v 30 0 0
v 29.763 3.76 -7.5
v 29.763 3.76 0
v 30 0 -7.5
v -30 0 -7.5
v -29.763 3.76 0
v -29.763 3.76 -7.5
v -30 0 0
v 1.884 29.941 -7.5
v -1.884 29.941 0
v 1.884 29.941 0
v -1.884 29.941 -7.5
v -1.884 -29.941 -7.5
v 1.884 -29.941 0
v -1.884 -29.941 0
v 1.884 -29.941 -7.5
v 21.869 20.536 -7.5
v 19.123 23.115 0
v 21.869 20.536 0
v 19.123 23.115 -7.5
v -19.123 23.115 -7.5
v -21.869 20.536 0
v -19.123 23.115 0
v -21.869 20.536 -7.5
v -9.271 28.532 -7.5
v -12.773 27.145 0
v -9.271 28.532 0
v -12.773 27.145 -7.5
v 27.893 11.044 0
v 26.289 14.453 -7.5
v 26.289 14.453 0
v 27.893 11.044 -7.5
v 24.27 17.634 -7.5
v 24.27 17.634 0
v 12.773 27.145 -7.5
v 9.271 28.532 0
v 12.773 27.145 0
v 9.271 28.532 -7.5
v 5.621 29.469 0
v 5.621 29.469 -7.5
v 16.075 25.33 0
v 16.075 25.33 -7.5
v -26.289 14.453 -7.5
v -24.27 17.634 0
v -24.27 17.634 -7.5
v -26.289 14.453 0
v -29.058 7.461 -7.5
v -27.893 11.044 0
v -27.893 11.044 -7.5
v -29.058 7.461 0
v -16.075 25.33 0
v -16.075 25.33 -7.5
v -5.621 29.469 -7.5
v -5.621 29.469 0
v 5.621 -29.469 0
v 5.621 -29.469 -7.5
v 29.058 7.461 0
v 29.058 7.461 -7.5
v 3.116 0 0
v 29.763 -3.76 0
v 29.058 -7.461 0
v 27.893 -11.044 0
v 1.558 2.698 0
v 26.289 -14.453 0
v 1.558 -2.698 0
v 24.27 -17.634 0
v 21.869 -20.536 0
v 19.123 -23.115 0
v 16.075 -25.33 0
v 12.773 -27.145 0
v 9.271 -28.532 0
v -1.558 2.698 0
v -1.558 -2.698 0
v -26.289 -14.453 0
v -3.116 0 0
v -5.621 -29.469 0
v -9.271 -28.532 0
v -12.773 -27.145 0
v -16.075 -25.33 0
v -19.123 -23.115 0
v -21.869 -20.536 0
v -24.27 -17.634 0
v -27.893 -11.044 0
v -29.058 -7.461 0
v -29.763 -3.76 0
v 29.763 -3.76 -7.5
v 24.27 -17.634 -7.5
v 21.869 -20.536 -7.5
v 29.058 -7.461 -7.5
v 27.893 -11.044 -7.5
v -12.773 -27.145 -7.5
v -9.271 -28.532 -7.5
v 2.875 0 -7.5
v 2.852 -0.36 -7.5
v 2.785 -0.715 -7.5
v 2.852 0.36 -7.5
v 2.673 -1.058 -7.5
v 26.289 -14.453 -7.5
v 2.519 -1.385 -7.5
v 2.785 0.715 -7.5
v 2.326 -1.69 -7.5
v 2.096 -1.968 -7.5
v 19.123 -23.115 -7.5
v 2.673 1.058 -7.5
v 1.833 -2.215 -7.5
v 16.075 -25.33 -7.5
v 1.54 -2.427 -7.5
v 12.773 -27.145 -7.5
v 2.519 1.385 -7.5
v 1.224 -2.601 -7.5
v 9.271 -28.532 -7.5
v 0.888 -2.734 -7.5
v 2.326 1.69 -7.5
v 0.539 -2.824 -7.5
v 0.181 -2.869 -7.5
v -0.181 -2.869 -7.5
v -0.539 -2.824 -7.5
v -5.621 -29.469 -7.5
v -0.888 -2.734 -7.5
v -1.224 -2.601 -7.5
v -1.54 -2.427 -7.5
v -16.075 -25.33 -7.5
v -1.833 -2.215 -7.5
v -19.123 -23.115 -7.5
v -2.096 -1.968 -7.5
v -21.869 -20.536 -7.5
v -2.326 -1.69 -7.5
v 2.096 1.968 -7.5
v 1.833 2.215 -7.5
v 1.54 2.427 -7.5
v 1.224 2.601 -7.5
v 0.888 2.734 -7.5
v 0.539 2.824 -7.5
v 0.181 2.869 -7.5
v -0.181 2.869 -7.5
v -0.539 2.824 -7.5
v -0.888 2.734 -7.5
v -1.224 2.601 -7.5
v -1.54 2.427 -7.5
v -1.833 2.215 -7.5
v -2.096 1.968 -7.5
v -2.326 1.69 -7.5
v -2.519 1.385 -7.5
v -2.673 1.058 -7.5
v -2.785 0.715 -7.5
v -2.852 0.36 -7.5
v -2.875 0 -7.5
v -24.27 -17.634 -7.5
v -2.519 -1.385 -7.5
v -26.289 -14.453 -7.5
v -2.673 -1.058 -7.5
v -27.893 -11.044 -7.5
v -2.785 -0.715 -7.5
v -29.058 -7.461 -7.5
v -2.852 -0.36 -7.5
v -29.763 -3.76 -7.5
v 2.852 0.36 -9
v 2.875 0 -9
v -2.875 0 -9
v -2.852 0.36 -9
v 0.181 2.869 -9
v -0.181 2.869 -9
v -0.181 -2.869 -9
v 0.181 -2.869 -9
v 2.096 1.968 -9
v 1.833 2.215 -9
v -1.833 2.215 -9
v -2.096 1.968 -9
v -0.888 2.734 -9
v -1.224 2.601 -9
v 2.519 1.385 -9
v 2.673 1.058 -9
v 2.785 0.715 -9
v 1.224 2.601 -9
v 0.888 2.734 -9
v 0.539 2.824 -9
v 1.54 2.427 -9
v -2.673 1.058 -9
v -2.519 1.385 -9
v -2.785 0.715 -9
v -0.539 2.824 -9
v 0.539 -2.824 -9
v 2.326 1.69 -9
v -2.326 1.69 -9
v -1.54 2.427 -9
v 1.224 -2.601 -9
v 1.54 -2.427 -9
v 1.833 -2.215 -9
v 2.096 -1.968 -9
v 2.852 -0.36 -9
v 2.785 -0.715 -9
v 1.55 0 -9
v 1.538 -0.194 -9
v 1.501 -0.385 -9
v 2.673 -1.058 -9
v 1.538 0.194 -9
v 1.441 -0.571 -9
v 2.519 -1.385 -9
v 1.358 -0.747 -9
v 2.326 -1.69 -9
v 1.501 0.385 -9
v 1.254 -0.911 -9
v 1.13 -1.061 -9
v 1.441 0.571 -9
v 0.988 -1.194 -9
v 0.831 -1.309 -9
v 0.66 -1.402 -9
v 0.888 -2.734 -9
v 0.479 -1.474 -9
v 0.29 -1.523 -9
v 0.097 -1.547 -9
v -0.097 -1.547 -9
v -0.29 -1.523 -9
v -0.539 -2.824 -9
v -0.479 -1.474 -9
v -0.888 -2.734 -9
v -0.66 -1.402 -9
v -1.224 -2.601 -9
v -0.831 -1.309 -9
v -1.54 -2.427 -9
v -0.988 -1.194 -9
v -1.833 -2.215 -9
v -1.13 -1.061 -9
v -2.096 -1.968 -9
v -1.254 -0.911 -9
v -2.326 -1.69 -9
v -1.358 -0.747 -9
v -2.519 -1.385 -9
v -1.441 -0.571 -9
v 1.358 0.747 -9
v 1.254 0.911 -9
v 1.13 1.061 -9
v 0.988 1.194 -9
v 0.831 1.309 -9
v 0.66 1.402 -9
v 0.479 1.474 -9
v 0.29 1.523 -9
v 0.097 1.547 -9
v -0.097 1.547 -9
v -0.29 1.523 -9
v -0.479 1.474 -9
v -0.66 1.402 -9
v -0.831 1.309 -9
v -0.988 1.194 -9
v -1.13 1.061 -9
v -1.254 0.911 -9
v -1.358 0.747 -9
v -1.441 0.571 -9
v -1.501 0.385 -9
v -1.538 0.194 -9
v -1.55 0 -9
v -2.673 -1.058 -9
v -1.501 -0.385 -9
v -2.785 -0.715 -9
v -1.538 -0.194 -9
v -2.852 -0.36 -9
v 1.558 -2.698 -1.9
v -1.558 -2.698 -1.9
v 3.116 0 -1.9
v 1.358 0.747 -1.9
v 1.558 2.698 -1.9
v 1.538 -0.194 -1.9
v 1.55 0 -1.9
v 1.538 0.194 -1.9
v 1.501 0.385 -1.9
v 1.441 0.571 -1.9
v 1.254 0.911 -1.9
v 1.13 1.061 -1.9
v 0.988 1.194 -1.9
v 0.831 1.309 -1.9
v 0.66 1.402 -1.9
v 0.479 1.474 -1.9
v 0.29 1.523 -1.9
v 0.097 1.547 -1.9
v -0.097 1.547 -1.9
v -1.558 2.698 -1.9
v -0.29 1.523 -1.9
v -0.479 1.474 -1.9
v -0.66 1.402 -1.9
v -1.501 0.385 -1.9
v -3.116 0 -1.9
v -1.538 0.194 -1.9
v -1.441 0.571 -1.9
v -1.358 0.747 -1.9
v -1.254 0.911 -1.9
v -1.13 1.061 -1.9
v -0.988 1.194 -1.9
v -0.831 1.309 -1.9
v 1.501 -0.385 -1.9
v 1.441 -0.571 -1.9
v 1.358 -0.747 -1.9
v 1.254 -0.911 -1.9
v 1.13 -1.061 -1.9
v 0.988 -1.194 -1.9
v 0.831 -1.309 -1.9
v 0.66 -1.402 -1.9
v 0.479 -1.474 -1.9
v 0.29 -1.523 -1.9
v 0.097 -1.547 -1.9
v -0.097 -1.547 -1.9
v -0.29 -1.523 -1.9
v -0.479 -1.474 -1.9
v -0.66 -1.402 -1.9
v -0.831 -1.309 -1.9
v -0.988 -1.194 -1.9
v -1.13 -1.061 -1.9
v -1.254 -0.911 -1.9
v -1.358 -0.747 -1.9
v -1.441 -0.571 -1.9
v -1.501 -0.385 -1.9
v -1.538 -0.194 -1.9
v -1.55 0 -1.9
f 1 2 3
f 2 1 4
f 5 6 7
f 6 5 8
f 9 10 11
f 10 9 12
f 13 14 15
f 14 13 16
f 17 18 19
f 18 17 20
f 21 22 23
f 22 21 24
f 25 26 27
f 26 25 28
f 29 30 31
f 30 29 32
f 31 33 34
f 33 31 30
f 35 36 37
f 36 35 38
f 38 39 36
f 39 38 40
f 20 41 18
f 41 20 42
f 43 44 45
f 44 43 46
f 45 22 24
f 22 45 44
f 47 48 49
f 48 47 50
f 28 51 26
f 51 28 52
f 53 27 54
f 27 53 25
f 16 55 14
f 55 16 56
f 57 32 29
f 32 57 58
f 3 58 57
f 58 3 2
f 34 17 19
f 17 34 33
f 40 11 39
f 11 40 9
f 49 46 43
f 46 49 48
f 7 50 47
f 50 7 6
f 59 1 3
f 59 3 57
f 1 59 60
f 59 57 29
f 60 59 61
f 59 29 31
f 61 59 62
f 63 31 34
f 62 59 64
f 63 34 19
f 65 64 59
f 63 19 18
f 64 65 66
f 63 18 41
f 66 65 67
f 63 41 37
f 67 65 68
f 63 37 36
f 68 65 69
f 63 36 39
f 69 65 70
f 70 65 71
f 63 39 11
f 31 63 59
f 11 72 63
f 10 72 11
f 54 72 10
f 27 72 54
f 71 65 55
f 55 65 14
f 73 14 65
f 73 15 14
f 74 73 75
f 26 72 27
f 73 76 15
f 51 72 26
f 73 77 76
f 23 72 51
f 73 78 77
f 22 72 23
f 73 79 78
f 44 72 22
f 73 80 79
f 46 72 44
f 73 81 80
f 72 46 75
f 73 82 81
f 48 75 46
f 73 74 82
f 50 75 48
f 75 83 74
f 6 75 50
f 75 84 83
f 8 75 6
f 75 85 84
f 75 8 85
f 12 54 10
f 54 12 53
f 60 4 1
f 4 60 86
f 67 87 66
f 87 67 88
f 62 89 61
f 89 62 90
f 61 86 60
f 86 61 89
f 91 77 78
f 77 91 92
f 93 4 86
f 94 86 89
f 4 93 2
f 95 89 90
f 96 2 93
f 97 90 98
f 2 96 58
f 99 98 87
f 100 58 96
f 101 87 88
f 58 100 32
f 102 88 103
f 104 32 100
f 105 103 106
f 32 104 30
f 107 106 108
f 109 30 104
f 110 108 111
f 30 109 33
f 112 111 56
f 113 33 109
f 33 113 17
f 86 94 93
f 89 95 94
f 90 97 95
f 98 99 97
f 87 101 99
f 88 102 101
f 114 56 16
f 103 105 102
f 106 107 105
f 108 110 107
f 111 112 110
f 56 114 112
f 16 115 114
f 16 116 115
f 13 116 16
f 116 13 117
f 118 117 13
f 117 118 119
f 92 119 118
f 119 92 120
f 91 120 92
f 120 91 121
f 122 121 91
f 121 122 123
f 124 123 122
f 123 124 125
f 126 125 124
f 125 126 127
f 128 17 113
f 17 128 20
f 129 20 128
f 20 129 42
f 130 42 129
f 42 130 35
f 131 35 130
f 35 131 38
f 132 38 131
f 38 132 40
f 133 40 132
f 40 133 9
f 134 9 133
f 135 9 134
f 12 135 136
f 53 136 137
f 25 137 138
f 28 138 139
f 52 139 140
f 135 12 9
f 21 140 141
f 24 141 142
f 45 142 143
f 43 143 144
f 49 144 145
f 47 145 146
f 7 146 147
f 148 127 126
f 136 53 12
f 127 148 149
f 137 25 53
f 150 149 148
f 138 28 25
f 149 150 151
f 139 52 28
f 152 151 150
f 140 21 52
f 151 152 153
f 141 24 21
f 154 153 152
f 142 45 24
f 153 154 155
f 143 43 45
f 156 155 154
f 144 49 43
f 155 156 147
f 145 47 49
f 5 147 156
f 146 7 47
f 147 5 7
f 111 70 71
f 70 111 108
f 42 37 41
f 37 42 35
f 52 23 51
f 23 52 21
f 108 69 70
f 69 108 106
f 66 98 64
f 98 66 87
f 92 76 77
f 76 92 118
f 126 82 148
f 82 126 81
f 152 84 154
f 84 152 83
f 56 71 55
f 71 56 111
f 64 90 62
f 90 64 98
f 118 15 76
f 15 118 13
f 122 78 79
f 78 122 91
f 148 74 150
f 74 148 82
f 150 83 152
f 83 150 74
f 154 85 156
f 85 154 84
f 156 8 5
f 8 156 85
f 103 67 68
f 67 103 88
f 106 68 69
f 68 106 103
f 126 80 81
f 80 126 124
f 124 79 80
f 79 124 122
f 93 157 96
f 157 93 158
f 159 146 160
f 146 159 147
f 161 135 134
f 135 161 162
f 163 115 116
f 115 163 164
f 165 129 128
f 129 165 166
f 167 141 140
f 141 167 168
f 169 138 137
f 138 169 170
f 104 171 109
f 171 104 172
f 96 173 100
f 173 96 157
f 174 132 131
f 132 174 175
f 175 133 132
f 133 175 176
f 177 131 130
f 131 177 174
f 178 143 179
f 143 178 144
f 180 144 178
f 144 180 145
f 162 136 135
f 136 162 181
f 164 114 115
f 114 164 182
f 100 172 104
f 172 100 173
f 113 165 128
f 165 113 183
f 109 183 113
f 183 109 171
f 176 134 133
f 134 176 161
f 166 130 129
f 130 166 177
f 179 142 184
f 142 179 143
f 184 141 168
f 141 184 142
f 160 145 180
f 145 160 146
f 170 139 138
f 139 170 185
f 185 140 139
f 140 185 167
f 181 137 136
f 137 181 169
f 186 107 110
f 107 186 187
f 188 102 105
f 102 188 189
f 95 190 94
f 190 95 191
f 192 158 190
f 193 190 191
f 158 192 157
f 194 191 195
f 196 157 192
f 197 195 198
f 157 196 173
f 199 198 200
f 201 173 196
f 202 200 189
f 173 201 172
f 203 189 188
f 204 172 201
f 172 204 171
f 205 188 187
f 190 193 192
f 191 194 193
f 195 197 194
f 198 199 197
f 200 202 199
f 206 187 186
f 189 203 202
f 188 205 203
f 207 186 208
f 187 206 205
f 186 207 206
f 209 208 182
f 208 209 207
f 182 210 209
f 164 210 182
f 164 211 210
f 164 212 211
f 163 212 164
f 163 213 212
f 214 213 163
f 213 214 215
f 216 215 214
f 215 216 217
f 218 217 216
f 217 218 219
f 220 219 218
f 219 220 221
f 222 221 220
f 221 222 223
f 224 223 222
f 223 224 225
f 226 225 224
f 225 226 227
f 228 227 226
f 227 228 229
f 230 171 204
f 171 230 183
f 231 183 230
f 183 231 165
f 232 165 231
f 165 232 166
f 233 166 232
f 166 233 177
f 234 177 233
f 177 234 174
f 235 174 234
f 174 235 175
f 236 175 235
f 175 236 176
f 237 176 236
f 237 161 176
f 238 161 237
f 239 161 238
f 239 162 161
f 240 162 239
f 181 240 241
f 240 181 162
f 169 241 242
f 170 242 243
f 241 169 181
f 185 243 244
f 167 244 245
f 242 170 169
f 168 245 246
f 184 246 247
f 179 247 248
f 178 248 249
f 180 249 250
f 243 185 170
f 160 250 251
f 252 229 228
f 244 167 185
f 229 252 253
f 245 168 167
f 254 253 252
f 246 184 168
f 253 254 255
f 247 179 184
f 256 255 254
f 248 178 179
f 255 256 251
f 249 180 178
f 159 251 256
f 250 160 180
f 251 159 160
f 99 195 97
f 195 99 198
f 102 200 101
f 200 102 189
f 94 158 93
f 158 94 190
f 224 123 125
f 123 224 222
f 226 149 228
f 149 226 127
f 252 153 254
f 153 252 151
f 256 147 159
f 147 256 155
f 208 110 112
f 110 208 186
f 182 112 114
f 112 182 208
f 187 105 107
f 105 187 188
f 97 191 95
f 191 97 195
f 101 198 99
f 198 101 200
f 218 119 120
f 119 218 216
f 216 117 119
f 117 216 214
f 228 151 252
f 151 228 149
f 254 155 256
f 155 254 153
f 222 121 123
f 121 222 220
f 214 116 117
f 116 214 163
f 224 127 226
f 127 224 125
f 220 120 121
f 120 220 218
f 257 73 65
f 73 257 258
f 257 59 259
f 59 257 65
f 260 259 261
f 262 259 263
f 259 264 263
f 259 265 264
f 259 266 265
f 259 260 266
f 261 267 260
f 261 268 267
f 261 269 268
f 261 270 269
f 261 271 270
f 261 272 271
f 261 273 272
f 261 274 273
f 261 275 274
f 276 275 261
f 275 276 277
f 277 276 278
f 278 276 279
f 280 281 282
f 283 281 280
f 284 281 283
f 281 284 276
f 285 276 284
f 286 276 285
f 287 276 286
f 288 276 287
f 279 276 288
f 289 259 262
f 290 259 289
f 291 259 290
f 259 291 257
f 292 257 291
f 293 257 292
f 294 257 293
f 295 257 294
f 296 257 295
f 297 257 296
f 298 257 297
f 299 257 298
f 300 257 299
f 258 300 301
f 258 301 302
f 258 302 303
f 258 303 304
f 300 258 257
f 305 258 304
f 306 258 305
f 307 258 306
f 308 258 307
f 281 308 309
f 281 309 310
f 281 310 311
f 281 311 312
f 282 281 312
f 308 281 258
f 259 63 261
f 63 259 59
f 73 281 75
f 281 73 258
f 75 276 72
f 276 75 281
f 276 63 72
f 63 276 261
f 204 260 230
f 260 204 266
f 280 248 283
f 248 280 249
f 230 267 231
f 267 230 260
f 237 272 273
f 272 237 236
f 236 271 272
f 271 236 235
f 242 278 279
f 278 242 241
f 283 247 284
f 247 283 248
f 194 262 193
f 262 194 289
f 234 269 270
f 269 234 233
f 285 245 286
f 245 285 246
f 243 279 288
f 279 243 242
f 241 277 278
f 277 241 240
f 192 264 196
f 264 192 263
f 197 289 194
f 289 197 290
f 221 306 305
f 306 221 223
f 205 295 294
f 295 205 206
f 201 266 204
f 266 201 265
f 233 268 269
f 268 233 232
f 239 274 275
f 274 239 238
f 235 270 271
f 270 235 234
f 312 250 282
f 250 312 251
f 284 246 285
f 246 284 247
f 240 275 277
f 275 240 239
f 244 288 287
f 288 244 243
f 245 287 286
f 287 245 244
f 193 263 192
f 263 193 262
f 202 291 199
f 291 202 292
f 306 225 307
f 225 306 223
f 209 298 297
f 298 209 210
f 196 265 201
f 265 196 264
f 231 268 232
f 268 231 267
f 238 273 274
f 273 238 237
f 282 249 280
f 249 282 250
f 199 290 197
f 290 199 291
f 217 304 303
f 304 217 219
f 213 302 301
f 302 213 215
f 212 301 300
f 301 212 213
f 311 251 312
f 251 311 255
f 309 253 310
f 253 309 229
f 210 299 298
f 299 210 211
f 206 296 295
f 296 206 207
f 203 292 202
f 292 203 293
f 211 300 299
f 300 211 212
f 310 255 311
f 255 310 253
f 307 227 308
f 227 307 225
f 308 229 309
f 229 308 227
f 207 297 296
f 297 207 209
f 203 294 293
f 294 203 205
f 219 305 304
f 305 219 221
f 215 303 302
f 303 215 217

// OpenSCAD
$fn = 50;


difference() {
	union() {
		translate(v = [0, 0, -7.5000000000]) {
			cylinder(h = 7.5000000000, r = 30.0000000000);
		}
		translate(v = [0, 0, -9.0000000000]) {
			cylinder(h = 9, r = 2.8750000000);
		}
	}
	union() {
		translate(v = [0, 0, 0]) {
			rotate(a = [0, 0, 0]) {
				difference() {
					union() {
						translate(v = [0, 0, -1.9000000000]) {
							linear_extrude(height = 1.9000000000) {
								polygon(points = [[3.1158000000, 0.0000000000], [1.5579000000, 2.6983619531], [-1.5579000000, 2.6983619531], [-3.1158000000, 0.0000000000], [-1.5579000000, -2.6983619531], [1.5579000000, -2.6983619531]]);
							}
						}
					}
					union();
				}
			}
		}
		#translate(v = [0, 0, -100.0000000000]) {
			cylinder(h = 200, r = 1.5500000000);
		}
	}
}
